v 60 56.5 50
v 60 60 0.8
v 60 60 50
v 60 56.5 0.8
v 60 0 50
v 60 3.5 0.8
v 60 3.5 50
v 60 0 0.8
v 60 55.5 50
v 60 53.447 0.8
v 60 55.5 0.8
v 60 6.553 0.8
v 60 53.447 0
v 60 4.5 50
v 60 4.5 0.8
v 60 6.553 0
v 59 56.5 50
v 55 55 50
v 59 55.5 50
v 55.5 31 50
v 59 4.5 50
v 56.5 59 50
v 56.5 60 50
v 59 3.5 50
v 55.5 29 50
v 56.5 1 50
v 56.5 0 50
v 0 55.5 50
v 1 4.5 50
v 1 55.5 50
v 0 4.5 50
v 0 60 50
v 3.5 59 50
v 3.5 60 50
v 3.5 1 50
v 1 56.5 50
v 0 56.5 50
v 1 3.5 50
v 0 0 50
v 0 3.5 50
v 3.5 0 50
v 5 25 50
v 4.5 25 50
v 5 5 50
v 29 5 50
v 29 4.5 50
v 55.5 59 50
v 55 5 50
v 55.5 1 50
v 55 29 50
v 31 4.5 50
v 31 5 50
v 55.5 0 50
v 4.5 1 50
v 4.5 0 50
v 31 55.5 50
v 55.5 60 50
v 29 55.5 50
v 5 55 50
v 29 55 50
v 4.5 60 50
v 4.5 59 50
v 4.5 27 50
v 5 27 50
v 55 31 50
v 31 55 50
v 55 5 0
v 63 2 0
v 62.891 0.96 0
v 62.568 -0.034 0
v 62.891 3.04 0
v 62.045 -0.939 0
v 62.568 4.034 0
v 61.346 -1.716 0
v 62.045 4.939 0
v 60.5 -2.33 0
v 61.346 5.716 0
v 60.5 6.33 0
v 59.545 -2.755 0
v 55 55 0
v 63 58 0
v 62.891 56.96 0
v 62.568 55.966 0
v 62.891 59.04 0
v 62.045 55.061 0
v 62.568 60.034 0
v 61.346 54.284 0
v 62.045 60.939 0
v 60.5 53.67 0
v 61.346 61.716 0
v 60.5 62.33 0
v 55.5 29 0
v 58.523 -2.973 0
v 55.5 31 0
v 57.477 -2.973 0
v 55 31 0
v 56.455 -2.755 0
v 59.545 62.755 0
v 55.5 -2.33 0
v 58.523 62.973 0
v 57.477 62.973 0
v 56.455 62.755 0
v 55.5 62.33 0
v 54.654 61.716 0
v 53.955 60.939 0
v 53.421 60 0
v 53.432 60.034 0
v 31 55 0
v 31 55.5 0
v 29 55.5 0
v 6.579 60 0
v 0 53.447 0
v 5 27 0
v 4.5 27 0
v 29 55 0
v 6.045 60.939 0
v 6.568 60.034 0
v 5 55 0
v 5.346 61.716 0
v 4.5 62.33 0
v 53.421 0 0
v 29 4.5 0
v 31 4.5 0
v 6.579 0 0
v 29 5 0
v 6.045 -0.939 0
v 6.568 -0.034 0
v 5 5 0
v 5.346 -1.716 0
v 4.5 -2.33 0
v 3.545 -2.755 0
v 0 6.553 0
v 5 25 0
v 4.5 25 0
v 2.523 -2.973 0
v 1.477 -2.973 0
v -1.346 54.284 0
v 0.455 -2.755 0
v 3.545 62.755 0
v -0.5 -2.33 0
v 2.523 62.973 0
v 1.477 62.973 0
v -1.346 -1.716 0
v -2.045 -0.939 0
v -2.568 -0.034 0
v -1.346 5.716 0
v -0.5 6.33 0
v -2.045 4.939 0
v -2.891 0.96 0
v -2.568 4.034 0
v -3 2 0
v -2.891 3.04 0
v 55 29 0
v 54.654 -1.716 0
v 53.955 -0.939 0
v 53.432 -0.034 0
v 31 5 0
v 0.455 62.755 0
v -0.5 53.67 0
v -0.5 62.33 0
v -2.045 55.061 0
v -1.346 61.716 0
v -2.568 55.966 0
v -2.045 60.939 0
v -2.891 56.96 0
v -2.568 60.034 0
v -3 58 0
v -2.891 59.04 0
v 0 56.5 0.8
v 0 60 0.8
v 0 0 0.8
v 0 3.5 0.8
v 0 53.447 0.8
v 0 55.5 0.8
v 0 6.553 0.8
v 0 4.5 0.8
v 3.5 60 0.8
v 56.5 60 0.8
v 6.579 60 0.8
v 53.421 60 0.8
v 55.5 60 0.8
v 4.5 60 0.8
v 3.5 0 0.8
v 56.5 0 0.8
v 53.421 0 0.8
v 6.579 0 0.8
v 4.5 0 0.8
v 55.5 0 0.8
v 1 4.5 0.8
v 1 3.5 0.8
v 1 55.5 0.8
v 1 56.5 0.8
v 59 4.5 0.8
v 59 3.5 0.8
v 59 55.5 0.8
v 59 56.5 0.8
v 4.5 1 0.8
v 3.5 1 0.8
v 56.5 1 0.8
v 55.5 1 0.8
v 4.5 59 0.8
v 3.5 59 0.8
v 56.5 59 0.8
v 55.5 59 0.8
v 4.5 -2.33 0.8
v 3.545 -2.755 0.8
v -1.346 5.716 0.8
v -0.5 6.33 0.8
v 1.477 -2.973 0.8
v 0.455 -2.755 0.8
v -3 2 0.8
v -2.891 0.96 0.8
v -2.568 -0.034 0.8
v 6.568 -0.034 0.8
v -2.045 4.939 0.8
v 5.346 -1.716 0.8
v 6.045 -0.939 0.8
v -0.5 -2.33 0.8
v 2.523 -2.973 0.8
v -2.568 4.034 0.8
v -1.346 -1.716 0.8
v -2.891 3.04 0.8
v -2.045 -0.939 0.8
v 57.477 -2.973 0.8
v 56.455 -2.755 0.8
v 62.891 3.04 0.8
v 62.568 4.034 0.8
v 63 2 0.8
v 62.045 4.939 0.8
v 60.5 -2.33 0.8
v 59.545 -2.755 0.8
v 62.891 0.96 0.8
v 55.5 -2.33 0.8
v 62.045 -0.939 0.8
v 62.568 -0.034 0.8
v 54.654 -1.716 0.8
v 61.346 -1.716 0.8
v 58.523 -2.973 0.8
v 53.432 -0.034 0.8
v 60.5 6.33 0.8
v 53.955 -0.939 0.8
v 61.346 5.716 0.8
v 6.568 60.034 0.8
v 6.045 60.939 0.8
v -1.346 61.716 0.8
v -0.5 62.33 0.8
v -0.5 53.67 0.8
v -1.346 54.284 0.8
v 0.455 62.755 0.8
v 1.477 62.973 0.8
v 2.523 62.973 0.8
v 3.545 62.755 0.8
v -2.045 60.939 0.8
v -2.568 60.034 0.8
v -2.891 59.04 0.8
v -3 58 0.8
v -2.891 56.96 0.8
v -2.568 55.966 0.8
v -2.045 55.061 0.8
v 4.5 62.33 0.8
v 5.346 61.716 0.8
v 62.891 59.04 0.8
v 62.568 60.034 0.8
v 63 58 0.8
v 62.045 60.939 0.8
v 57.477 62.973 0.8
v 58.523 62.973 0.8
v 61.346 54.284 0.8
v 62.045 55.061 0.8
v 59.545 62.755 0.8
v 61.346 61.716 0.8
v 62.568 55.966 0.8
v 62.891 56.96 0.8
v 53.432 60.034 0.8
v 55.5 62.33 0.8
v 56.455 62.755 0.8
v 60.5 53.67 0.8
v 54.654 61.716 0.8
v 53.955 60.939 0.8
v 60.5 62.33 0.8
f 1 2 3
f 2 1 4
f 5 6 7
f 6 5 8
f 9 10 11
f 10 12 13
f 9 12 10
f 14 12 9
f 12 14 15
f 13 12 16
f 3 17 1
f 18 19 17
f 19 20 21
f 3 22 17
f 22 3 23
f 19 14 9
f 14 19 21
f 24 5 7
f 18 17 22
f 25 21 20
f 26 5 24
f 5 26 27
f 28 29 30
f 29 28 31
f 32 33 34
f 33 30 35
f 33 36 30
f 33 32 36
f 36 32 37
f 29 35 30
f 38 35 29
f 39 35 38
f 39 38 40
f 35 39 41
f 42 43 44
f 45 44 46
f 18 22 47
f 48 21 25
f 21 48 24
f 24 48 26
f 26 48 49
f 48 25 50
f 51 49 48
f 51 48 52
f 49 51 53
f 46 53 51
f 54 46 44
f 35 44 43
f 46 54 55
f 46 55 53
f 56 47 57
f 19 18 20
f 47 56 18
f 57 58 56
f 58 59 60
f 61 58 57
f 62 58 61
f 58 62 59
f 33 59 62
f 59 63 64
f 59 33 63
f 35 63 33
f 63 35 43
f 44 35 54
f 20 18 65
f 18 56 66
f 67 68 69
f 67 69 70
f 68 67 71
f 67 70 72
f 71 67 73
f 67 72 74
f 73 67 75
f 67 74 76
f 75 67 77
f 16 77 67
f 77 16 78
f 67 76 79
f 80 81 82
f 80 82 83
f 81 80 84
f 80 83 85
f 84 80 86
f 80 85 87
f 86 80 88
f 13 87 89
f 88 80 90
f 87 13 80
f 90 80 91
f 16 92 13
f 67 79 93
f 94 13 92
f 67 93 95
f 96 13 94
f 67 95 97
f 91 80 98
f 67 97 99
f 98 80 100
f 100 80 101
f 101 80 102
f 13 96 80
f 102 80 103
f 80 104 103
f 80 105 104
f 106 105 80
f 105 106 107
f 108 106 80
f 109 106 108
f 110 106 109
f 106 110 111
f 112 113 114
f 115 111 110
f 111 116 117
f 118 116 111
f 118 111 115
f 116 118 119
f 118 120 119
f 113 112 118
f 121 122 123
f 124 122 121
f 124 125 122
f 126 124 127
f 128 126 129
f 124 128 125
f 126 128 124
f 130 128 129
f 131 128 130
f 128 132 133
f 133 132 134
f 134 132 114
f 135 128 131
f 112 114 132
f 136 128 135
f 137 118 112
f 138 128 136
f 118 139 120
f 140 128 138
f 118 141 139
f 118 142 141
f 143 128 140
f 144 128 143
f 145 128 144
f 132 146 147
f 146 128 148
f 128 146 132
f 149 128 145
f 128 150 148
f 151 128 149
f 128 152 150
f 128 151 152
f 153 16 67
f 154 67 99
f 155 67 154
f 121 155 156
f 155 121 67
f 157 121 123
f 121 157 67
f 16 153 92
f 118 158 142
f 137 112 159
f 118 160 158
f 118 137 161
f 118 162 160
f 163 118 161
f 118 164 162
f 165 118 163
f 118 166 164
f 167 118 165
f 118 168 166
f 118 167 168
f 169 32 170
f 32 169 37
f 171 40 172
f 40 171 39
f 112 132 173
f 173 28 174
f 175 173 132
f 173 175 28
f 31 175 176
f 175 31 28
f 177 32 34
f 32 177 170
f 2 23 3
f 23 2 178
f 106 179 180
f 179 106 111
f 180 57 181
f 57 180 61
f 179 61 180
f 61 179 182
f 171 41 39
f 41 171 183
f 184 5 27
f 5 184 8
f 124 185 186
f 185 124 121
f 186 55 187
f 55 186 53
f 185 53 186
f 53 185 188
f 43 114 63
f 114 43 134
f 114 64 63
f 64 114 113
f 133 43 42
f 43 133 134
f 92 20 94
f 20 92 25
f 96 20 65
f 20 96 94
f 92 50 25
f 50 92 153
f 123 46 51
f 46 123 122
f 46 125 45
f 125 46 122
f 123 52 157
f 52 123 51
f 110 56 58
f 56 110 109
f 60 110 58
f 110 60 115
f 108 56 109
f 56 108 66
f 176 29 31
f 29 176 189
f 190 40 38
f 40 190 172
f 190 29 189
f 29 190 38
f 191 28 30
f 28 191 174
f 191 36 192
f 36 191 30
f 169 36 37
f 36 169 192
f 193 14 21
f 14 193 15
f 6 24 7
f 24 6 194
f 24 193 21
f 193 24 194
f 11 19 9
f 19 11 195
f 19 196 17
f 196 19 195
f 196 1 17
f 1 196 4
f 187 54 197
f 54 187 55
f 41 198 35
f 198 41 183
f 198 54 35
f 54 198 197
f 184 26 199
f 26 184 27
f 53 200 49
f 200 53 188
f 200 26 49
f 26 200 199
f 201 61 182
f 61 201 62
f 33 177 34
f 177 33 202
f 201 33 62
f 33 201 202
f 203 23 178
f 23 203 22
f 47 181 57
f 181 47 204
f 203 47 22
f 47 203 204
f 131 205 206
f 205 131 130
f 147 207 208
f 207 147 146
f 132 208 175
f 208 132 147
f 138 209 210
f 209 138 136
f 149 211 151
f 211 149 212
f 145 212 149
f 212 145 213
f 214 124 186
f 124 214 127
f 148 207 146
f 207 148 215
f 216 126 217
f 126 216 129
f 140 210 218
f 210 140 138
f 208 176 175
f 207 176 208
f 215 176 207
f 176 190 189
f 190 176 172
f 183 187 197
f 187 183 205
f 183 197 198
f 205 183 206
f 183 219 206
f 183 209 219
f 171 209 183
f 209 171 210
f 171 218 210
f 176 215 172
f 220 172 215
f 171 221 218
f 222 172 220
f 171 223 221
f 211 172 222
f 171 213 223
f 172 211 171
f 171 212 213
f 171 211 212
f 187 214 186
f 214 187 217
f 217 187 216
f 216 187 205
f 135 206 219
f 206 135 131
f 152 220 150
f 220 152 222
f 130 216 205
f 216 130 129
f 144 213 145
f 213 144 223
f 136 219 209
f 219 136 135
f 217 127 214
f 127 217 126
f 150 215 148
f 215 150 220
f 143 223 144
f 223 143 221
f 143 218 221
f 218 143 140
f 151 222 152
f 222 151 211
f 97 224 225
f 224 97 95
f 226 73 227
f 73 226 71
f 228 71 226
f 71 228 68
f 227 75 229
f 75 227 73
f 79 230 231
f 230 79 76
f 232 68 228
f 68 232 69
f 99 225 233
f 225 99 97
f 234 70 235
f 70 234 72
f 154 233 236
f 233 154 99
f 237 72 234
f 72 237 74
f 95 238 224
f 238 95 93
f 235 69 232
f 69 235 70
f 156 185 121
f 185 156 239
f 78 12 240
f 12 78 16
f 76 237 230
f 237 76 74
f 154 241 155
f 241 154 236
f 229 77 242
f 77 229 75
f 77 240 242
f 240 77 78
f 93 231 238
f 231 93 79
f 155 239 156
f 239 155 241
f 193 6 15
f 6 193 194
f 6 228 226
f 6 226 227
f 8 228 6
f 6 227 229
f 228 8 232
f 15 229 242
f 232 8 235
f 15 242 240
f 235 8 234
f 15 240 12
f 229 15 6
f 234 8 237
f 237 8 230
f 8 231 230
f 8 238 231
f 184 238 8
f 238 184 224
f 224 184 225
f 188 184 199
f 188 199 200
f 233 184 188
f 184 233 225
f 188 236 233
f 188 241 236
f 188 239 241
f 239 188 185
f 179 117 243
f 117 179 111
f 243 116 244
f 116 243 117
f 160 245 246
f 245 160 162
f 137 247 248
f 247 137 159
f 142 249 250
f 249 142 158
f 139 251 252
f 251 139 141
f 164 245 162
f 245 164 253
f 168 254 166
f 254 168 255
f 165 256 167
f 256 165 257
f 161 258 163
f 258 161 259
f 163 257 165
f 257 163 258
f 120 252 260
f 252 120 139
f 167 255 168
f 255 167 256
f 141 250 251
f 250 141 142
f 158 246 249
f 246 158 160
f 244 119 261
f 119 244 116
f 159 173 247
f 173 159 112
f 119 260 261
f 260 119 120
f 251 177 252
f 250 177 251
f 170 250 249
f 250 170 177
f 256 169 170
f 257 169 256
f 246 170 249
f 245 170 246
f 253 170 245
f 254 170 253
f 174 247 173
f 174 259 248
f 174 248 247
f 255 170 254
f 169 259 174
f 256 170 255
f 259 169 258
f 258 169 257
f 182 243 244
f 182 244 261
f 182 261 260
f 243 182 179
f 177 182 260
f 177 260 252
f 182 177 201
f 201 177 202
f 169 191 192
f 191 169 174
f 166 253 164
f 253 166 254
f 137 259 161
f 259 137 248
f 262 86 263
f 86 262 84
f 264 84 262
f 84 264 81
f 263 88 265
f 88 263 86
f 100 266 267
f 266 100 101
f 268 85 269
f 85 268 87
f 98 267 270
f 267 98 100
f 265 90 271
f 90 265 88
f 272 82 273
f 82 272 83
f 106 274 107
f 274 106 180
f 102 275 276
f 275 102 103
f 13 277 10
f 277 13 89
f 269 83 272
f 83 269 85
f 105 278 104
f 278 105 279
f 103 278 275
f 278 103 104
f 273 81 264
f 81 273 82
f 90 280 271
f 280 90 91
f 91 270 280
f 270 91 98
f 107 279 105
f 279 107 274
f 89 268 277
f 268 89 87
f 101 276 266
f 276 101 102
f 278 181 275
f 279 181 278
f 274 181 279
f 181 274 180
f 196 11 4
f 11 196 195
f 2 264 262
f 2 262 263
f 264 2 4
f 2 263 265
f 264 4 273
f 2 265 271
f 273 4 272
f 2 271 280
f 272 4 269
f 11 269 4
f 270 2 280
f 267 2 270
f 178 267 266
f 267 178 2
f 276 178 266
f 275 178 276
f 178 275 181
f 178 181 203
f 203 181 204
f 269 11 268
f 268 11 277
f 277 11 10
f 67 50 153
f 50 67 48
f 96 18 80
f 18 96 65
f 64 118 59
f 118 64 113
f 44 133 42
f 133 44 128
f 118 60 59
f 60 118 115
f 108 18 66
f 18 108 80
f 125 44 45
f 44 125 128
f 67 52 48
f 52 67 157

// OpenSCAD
// Calibration test tower with corner notches (to induce resonance)
//
// Generate STL using OpenSCAD:
//   openscad square_notch_tower.scad -o square_notch_tower.stl

square_width = 5;
square_size = 60;
square_height = 50;
antiwarp_height = .8;
antiwarp_radius = 5;
CUT = 0.01;

module notch(x, y, rot) {
    depth = .5;
    width = 1;
    translate([x, y, 0])
        rotate([0, 0, rot])
            translate([-depth, -width, -CUT])
                cube([2*depth, 2*width, square_height + 2*CUT]);
}

module square_with_notches() {
    CORNER_OFFSET = 4;
    difference() {
        // Start with initial square
        cube([square_size, square_size, square_height]);
        // Remove four notches on inside perimeter
        notch(square_width, square_size/2 - 4, 0);
        notch(square_size - square_width, square_size/2, 0);
        notch(square_size/2, square_width, 90);
        notch(square_size/2, square_size - square_width, 90);
        // Remove eight notches near external corners
        notch(0, CORNER_OFFSET, 90);
        notch(0, square_size - CORNER_OFFSET, 90);
        notch(square_size, CORNER_OFFSET, 90);
        notch(square_size, square_size - CORNER_OFFSET, 90);
        notch(CORNER_OFFSET, 0, 0);
        notch(square_size - CORNER_OFFSET, 0, 0);
        notch(CORNER_OFFSET, square_size, 0);
        notch(square_size - CORNER_OFFSET, square_size, 0);
    }
}

module anti_warp_feet() {
    module anti_warp_cylinder() {
        cylinder(r=antiwarp_radius, h=antiwarp_height, $fs=.5);
    }
    dist = antiwarp_radius / 2.5;
    translate([dist, dist, 0])
        anti_warp_cylinder();
    translate([square_size-dist, dist, 0])
        anti_warp_cylinder();
    translate([dist, square_size-dist, 0])
        anti_warp_cylinder();
    translate([square_size-dist, square_size-dist, 0])
        anti_warp_cylinder();
}

module hollow_square() {
    difference() {
        union() {
            square_with_notches();
            anti_warp_feet();
        }
        translate([square_width, square_width, -CUT])
            cube([square_size-2*square_width, square_size-2*square_width,
                  square_height + 2*CUT]);
    }
}

hollow_square();
